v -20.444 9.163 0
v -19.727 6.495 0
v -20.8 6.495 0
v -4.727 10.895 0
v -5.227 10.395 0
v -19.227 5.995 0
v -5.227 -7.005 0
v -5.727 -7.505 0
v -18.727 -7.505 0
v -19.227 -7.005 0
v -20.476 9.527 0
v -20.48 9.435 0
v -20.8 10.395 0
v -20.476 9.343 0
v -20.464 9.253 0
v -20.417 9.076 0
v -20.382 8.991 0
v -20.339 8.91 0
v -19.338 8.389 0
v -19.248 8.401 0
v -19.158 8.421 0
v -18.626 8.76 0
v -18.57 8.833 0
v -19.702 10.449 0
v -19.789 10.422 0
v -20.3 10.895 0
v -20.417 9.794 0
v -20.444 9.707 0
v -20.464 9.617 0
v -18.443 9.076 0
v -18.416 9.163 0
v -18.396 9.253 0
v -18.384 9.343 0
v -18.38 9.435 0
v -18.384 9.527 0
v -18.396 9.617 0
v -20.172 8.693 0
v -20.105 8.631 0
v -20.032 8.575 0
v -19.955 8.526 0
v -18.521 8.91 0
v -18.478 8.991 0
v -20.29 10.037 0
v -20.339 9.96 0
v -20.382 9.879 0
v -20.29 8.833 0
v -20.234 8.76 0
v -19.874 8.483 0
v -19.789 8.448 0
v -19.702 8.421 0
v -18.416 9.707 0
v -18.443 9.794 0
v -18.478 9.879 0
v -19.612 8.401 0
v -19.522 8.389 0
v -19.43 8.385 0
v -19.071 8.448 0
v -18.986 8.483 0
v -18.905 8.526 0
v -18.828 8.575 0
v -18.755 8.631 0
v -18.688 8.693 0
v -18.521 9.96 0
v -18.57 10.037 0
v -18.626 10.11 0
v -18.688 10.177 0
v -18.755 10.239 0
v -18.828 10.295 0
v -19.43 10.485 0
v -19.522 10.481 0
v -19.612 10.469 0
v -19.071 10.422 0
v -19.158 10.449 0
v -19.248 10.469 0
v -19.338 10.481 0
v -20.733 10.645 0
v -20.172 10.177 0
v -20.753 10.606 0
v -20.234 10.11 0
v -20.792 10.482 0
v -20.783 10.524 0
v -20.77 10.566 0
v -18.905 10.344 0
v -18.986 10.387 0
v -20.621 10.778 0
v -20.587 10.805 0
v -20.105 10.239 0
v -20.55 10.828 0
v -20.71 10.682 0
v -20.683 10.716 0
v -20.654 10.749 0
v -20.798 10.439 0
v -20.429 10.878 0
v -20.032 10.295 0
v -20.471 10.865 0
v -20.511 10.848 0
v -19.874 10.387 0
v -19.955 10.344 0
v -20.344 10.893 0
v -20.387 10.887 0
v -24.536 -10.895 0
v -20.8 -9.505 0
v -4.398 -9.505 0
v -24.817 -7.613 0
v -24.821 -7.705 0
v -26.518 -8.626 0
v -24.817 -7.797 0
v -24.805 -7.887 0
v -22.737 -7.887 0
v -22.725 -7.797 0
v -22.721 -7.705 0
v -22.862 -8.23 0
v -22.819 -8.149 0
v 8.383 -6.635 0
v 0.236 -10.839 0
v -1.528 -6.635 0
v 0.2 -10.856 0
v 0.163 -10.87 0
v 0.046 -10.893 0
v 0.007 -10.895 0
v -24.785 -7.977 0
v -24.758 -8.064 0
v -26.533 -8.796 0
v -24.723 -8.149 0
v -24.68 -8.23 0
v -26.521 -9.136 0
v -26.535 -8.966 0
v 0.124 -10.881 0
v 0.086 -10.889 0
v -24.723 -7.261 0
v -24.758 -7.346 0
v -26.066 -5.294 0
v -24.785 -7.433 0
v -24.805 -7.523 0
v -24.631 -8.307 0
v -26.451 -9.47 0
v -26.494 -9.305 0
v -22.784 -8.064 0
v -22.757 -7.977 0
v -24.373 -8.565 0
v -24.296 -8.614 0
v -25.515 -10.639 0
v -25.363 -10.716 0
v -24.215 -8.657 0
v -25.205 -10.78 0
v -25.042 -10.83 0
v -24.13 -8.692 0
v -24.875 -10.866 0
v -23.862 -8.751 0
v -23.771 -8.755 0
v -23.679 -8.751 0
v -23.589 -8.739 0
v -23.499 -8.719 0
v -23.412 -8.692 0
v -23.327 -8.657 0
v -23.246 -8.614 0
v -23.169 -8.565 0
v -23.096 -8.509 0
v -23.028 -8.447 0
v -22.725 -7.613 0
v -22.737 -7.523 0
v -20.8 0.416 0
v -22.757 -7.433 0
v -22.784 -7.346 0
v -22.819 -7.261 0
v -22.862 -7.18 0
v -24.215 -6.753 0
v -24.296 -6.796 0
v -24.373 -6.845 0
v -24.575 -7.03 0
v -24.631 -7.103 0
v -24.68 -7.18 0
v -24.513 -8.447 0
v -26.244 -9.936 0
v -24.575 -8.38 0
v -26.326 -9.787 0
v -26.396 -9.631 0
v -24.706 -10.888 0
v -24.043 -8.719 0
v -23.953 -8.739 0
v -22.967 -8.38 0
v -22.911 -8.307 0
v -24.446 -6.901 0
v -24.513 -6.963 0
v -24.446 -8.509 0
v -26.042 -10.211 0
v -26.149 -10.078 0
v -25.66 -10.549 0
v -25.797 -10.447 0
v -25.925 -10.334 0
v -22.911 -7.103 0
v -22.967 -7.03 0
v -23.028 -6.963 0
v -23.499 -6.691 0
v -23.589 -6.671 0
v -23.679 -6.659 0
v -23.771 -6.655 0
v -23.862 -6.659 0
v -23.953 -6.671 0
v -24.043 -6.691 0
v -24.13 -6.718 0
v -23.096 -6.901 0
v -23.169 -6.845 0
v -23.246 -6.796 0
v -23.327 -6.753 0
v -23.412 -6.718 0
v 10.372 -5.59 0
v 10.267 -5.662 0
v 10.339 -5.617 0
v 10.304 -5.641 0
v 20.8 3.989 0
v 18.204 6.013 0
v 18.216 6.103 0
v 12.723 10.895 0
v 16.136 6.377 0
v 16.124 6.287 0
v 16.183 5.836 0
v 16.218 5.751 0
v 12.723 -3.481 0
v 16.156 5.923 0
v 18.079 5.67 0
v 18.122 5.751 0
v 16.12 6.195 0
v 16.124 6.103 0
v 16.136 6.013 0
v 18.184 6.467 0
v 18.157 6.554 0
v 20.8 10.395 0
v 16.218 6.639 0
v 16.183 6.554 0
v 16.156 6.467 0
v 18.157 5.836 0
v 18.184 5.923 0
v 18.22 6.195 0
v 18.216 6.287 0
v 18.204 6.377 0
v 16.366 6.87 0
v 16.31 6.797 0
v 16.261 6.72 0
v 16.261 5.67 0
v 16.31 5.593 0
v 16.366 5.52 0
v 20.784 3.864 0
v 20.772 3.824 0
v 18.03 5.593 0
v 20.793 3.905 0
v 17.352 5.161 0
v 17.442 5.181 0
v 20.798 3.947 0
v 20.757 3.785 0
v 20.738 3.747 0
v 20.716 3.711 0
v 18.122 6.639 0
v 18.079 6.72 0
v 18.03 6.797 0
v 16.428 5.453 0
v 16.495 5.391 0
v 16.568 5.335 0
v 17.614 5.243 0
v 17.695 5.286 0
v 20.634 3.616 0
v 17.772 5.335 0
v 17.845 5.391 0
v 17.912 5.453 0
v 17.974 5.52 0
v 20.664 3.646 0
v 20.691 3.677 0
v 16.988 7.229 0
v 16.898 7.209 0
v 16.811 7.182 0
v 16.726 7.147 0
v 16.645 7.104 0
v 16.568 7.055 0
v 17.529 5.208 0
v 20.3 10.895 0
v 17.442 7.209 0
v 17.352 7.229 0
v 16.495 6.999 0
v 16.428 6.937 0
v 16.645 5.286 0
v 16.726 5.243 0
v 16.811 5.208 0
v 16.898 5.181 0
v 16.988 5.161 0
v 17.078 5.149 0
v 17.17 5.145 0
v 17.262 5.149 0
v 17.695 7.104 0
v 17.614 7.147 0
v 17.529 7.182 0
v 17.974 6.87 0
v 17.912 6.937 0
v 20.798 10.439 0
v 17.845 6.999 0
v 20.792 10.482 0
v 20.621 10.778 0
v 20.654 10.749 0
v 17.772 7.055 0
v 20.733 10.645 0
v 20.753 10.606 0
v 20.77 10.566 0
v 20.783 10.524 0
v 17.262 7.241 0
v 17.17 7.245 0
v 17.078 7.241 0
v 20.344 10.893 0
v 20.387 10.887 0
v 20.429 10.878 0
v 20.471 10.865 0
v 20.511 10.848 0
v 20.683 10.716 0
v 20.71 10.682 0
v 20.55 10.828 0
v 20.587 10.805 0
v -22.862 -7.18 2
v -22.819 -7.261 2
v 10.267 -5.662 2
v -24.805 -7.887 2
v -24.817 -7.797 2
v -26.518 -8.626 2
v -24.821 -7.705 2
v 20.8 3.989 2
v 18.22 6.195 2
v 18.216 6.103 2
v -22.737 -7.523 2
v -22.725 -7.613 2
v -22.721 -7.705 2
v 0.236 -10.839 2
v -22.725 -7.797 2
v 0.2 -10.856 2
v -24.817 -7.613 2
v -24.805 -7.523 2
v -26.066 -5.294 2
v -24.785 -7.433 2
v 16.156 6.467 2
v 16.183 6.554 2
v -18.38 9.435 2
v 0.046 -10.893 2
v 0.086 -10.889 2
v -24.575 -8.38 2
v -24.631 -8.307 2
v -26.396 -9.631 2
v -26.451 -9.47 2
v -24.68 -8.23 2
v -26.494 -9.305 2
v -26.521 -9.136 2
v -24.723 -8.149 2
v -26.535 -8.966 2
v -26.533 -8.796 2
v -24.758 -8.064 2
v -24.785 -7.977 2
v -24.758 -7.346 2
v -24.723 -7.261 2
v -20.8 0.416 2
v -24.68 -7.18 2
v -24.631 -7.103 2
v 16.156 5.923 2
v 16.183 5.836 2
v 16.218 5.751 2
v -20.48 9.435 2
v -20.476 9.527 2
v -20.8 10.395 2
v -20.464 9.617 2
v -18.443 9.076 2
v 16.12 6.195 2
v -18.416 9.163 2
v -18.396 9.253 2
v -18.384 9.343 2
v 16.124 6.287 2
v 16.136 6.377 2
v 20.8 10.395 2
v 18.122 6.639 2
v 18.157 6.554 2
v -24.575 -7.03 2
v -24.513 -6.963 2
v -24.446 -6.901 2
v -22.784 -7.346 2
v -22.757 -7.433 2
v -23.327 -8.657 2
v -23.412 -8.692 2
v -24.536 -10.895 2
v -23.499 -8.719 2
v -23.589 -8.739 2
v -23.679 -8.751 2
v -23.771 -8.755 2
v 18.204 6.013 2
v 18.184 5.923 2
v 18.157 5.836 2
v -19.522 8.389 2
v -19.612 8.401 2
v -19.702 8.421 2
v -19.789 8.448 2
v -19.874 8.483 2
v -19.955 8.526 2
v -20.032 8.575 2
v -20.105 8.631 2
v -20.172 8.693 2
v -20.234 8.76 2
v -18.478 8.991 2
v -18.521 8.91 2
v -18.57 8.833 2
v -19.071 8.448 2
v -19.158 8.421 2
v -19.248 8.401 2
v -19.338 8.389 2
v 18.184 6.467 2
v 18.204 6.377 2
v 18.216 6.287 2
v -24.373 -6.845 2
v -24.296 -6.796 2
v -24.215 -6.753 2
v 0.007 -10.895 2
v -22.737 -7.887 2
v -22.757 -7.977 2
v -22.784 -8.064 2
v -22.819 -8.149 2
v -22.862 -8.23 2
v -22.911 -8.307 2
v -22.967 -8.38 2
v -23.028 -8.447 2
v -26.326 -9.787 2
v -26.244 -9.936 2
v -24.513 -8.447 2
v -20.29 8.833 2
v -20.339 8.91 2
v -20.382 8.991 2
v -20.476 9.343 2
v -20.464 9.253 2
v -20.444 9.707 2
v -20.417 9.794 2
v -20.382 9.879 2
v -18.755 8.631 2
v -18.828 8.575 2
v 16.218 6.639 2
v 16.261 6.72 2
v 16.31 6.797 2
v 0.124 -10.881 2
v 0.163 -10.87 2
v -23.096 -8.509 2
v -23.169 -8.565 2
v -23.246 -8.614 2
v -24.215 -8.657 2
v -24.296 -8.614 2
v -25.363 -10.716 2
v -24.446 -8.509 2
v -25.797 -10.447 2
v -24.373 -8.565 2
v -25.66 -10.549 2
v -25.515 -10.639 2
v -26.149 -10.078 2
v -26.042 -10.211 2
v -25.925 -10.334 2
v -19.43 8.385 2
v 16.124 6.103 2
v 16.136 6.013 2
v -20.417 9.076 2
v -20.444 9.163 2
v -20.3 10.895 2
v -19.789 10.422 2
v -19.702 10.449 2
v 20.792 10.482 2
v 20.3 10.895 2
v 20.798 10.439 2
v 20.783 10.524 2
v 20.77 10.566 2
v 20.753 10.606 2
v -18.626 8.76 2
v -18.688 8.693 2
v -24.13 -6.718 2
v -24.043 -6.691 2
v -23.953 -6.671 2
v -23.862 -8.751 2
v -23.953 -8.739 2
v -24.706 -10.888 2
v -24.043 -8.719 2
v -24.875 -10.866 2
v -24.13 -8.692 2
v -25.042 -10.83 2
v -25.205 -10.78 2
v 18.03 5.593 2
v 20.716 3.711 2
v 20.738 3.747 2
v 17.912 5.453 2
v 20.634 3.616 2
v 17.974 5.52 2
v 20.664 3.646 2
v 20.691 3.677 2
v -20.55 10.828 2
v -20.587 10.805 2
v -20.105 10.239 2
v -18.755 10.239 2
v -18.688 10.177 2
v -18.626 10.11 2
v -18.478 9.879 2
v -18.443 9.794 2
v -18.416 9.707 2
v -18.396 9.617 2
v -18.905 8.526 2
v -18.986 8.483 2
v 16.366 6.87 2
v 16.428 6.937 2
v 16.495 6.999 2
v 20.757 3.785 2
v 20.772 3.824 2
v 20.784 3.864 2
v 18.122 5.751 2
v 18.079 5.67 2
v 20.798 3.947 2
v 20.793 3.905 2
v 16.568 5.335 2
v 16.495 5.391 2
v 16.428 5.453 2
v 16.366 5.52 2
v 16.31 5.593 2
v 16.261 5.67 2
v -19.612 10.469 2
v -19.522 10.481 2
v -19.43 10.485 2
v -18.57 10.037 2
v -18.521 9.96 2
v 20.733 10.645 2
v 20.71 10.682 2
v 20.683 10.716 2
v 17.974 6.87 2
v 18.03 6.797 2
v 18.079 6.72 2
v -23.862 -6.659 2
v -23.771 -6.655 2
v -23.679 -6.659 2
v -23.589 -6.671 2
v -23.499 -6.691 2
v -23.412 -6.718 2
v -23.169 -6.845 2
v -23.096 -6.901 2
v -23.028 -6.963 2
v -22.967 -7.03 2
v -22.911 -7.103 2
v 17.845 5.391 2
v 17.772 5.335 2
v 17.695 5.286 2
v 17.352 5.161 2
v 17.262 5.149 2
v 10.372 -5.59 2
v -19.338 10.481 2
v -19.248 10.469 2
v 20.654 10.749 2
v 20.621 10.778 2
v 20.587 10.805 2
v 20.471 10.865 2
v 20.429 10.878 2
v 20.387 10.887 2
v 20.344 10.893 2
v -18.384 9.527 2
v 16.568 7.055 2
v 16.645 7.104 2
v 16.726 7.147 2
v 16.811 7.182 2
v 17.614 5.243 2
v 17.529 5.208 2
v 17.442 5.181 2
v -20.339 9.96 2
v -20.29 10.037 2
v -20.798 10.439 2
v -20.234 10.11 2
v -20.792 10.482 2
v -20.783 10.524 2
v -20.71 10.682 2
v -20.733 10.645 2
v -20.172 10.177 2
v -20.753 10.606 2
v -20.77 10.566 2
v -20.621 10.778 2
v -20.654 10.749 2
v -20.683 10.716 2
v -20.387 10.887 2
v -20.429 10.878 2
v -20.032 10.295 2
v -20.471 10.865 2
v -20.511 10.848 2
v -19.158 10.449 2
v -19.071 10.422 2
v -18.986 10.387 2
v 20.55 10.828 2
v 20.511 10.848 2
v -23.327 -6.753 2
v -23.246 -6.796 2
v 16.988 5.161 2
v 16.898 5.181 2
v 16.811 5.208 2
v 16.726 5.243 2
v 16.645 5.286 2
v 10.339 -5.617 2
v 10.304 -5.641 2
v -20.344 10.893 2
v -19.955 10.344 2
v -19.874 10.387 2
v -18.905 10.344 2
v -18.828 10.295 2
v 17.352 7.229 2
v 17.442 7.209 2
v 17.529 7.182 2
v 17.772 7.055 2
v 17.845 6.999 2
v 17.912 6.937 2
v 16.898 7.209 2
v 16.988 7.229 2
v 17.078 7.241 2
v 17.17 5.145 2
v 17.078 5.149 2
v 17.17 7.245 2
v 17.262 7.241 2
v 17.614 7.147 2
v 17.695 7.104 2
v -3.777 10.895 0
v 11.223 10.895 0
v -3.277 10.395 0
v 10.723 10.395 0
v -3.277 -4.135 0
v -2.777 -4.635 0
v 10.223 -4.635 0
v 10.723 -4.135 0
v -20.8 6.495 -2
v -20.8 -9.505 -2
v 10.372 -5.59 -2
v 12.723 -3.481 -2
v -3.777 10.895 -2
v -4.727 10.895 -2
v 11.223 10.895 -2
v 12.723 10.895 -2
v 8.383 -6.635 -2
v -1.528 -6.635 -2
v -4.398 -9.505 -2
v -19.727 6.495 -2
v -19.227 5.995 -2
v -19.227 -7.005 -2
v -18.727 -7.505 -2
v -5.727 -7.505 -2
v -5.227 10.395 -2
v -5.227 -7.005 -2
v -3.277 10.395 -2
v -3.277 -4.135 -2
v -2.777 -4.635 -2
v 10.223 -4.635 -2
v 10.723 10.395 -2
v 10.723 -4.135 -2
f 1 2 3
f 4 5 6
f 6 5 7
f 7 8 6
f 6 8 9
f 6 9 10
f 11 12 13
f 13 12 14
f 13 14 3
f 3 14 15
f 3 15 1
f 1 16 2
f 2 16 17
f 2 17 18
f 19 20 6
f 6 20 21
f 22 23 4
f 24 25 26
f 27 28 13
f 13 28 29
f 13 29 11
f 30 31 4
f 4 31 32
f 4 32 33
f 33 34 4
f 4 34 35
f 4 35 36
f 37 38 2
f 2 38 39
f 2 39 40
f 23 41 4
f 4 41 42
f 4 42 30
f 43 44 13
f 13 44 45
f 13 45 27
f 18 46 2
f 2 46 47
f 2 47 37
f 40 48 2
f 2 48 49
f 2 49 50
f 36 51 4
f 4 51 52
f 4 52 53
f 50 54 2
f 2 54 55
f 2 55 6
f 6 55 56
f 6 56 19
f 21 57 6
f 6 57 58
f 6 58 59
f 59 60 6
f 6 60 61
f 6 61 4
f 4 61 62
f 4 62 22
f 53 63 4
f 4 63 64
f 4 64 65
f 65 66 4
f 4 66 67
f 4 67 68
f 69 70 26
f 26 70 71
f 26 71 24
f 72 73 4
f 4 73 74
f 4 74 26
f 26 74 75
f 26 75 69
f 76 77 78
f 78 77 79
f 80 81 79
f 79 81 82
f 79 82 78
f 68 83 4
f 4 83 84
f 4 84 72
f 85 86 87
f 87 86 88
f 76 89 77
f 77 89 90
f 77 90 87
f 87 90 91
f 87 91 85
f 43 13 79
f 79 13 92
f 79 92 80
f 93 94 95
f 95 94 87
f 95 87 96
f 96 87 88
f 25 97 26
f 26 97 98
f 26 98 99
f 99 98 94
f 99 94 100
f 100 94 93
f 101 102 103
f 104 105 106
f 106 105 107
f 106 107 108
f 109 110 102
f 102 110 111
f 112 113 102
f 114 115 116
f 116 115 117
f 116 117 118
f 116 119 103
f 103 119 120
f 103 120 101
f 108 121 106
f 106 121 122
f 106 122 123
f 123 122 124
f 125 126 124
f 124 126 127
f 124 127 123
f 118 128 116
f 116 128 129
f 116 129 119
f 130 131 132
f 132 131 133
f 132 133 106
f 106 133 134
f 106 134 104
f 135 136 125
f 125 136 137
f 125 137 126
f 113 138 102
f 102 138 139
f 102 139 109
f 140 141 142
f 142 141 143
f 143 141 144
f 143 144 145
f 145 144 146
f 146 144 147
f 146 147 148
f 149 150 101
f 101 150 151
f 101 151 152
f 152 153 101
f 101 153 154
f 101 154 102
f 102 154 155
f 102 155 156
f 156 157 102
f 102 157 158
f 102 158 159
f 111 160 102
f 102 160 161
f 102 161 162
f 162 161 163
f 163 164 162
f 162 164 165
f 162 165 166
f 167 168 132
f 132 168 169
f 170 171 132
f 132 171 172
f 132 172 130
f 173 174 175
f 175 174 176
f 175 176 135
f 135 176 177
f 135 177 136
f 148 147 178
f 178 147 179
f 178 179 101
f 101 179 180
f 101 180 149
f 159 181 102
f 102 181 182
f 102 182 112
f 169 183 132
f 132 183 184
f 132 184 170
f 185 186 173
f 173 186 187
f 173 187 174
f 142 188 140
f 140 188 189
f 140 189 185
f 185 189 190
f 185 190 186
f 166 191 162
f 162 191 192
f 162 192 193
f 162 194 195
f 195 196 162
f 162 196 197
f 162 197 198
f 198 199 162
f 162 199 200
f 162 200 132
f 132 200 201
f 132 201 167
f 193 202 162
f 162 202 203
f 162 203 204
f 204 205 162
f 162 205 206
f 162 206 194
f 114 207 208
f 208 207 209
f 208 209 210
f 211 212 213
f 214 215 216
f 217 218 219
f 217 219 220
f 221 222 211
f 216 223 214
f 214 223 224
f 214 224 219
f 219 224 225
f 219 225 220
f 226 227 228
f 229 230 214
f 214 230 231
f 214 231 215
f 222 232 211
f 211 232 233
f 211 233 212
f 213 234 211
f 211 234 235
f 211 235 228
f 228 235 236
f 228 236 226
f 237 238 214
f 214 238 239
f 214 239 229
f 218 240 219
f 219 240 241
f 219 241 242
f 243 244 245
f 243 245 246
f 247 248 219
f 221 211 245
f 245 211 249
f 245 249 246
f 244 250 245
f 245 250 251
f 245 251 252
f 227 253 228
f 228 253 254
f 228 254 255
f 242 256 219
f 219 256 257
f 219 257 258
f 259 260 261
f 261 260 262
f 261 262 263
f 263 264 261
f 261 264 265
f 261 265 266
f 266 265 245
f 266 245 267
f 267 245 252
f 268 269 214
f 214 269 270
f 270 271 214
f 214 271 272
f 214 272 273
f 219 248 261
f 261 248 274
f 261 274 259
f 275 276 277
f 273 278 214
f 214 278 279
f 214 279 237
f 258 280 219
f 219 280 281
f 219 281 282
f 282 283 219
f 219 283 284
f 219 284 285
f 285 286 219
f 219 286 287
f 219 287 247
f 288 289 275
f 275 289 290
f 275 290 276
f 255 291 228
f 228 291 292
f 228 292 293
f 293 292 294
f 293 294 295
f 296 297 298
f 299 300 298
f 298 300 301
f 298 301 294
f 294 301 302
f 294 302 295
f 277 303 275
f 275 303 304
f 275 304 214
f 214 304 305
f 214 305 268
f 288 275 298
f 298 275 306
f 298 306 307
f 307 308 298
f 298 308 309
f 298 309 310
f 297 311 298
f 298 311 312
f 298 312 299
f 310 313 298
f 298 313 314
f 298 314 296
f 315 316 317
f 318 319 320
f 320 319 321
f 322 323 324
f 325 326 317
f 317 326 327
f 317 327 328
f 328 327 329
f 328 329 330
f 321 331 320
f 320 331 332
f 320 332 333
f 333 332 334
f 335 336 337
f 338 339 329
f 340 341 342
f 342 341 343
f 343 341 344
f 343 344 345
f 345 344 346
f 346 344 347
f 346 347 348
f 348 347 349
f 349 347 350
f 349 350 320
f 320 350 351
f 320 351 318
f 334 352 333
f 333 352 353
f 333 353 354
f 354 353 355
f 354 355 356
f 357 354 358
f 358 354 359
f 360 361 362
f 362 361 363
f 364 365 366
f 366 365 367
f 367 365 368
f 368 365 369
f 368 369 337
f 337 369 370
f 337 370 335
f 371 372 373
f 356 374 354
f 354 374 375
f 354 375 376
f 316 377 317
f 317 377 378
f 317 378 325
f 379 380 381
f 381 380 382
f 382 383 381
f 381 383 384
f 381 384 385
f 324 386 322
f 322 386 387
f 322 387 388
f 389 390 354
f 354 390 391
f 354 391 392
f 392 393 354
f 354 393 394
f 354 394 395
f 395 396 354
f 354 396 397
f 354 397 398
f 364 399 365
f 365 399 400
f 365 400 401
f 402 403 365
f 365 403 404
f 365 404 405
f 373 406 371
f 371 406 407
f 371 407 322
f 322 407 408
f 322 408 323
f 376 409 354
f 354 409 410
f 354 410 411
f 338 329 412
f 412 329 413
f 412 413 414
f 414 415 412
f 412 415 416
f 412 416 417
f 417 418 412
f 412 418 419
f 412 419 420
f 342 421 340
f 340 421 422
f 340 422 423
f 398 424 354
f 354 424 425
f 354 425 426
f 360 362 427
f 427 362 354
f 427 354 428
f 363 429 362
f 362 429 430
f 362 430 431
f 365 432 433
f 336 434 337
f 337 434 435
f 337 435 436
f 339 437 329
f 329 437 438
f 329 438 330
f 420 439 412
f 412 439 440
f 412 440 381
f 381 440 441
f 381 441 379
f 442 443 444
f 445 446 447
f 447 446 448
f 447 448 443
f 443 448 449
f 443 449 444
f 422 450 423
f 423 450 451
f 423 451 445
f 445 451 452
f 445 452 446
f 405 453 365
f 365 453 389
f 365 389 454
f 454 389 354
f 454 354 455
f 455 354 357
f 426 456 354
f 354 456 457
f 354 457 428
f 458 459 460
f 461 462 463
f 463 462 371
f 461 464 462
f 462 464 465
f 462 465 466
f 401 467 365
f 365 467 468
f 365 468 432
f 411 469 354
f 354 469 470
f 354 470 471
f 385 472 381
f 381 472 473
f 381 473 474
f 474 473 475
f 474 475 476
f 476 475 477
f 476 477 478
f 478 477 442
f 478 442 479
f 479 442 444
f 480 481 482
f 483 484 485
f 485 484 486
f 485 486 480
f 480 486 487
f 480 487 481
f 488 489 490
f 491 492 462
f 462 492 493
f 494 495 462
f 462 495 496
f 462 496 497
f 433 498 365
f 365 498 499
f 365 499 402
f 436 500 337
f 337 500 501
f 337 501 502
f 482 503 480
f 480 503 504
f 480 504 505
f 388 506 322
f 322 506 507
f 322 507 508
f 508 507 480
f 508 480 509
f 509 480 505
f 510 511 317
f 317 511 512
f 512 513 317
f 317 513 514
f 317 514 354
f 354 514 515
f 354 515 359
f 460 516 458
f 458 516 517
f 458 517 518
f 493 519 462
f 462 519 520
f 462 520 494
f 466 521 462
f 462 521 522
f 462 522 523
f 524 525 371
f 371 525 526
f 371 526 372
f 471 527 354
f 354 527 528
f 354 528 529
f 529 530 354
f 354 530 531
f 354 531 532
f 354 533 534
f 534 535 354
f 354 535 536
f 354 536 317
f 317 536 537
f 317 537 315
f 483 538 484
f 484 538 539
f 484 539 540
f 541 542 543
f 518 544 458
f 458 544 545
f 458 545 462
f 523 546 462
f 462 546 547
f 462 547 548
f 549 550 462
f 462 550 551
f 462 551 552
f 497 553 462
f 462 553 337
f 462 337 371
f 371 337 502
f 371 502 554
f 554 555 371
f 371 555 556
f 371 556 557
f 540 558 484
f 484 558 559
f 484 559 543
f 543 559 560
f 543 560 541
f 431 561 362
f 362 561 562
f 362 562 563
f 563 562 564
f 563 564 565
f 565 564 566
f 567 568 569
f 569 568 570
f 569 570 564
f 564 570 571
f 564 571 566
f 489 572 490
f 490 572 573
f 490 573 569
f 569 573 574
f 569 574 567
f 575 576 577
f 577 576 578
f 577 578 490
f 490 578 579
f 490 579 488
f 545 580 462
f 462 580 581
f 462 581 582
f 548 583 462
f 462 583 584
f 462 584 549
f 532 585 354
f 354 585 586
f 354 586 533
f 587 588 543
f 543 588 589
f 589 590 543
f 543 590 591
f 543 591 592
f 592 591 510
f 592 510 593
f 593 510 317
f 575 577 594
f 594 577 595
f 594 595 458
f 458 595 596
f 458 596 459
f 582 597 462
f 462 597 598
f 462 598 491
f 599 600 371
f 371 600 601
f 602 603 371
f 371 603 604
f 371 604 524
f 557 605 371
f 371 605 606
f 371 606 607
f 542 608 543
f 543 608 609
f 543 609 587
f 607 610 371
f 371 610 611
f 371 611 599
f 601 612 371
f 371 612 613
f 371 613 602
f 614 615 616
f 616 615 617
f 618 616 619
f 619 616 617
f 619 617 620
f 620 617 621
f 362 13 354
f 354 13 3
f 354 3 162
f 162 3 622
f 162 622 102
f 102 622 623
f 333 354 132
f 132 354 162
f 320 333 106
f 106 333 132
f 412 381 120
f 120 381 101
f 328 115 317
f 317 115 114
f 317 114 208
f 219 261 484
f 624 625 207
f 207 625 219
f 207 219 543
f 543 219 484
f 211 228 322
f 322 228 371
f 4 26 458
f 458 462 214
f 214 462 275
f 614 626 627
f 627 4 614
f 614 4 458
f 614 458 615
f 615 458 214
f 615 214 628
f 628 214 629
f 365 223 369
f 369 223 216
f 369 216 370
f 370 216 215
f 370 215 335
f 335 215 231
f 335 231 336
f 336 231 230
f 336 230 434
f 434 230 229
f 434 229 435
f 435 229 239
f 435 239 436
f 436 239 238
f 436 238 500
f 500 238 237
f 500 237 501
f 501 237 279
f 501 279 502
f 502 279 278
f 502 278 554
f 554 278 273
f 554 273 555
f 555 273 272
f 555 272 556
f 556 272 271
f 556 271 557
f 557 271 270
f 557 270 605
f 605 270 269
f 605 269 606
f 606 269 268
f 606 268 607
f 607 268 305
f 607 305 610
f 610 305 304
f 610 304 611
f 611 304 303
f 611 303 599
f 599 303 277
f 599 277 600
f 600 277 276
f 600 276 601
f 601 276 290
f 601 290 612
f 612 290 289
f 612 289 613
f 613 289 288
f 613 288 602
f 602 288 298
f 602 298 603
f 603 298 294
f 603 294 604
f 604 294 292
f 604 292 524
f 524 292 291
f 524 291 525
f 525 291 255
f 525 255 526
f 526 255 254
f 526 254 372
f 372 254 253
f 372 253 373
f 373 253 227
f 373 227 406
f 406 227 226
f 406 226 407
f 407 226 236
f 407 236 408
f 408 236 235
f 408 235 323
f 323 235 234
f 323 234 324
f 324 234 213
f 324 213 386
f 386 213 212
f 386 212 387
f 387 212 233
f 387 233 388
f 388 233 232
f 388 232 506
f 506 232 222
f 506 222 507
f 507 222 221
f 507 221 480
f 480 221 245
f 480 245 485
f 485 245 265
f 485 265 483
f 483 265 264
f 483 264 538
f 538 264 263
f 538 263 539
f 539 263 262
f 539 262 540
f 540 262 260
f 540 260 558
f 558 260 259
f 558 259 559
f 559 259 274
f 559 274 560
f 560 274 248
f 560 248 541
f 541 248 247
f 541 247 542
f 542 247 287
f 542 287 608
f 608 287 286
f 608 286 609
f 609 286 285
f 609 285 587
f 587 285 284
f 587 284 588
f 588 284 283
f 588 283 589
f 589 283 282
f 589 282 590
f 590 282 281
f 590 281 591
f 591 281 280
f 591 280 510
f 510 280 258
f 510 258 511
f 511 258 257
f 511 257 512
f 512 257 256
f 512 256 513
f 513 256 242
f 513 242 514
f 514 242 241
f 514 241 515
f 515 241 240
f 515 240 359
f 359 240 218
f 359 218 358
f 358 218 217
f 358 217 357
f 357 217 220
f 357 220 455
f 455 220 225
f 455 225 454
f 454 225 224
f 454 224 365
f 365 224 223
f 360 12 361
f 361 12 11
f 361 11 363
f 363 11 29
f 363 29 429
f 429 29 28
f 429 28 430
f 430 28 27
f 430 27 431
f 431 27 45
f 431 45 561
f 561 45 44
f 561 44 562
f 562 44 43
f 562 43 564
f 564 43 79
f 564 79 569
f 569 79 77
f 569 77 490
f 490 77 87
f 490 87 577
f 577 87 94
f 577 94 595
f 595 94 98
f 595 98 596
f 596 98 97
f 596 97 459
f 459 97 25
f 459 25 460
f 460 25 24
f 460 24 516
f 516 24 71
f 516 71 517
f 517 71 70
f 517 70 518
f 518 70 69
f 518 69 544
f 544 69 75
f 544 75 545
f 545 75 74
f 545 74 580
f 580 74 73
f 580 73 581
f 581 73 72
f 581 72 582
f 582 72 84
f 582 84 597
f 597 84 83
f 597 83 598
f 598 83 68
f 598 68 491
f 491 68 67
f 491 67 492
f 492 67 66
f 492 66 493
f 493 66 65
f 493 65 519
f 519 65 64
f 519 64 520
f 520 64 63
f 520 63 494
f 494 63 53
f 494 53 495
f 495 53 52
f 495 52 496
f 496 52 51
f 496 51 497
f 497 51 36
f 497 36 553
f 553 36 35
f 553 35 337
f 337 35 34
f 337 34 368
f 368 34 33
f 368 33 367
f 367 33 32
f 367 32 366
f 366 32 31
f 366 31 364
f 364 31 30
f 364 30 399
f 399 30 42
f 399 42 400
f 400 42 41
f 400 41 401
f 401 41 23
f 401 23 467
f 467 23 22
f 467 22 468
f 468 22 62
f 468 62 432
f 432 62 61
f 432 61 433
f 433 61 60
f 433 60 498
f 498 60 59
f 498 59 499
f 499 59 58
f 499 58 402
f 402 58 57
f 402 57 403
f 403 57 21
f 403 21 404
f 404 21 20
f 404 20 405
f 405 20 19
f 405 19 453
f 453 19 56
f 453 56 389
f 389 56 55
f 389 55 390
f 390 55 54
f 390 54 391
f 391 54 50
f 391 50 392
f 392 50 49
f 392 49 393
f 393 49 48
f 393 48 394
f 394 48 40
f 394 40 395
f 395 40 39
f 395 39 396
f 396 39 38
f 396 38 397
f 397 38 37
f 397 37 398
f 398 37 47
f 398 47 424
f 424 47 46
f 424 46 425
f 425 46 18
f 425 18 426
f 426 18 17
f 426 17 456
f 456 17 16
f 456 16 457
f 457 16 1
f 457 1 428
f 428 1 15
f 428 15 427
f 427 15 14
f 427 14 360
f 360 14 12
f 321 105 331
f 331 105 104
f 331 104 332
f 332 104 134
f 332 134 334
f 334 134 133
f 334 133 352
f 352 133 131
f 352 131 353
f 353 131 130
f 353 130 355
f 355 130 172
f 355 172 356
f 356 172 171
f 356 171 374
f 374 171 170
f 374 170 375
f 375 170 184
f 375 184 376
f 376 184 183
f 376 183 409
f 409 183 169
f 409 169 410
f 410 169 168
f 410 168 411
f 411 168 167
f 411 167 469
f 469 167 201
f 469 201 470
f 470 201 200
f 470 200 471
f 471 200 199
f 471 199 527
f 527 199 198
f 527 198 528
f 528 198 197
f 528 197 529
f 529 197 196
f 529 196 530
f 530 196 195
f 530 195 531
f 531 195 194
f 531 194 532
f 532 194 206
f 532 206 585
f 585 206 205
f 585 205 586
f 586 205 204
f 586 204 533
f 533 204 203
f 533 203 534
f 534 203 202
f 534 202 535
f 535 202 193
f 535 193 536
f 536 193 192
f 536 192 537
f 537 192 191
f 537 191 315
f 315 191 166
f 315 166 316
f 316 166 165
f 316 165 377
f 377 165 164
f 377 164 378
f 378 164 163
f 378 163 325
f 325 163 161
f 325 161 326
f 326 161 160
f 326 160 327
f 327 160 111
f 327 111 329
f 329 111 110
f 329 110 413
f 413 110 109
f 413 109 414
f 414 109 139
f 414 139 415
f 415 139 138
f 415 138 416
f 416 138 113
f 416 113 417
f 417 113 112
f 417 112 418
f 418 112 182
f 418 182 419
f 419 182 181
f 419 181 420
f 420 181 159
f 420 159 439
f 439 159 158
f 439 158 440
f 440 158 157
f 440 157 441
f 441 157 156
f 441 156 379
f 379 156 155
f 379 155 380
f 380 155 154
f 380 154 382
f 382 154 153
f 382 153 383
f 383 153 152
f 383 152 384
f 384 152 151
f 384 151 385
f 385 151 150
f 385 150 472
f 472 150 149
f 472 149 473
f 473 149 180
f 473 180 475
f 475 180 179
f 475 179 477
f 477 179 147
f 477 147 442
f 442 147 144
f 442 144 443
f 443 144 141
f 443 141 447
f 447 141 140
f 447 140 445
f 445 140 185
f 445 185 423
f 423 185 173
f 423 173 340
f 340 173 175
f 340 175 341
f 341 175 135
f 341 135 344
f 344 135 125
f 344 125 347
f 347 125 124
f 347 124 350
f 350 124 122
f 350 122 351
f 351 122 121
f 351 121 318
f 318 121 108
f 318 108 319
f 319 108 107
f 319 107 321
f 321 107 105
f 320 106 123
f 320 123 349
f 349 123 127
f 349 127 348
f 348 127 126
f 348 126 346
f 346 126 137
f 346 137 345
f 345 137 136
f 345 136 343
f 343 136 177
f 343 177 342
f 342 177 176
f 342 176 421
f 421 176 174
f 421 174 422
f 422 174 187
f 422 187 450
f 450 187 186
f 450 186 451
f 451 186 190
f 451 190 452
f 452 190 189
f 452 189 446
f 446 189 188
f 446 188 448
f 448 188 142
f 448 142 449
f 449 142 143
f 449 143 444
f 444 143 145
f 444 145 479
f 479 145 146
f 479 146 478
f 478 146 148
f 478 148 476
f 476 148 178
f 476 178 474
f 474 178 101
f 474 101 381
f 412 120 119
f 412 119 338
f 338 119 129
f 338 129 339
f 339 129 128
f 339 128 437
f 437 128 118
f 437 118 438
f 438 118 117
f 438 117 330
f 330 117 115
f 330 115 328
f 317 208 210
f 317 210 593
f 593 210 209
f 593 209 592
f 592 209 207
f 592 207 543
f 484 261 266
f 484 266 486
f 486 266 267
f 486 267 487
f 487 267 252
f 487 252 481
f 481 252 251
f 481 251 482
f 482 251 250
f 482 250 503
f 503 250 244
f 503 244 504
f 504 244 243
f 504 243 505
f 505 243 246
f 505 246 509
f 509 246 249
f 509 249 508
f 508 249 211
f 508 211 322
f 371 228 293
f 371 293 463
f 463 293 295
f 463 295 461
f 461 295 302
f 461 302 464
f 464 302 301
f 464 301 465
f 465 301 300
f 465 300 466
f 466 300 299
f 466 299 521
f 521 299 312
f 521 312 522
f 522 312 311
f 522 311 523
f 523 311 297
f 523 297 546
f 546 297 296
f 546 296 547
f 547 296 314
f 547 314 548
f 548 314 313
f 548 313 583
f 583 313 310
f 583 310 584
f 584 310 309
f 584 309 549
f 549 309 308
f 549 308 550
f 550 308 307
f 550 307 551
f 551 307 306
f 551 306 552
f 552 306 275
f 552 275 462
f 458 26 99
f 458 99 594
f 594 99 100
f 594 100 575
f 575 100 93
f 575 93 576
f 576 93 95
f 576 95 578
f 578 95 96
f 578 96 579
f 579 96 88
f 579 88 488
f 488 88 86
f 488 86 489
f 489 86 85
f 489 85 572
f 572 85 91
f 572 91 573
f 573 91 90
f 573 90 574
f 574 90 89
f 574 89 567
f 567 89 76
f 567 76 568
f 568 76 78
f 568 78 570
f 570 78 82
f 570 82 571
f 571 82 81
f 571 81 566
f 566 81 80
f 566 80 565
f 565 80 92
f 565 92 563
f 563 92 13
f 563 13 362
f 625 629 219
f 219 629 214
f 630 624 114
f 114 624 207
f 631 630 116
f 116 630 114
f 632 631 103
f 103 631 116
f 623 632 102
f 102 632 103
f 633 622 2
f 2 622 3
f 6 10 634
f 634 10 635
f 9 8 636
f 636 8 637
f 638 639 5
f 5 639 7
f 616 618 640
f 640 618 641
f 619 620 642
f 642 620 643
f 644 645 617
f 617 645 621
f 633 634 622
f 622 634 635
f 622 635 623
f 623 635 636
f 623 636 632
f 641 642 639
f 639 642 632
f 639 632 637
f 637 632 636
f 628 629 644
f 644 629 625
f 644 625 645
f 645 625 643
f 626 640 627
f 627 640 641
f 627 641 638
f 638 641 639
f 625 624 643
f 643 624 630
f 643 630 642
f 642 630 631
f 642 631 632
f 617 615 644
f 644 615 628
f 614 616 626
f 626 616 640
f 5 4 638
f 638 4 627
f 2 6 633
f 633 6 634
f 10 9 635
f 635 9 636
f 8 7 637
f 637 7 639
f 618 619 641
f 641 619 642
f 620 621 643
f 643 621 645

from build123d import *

# Parameters (mm, degrees)
ESQUISSE1_R        = 1.05
BOSS_EXTRU_1_DEPTH = 2
CONG_1_R           = 2
CONG_2_R           = 0.5
BOSS_EXTRU_2_DEPTH = 2
CHANFREIN1_SIZE    = 0.5


with BuildPart() as part:
    # Esquisse1 → Boss.-Extru.1 (new body)
    with BuildSketch(Plane.XY):
        Polygon((-20.8, 10.895), (20.8, 10.895), (20.8, 3.765359203), (10.324093605, -5.633066028), (0.127924824, -10.895), (-20.8, -10.895), (-26.825567122, -10.895), (-26.065636187, -5.293625083), (-20.8, 0.415783742), align=None)
        with Locations((17.17, 6.195)):
            Circle(ESQUISSE1_R, mode=Mode.SUBTRACT)
        with Locations((-19.43, 9.435)):
            Circle(ESQUISSE1_R, mode=Mode.SUBTRACT)
        with Locations((-23.770918846, -7.705)):
            Circle(ESQUISSE1_R, mode=Mode.SUBTRACT)
    extrude(amount=BOSS_EXTRU_1_DEPTH)

    # Congé1
    cong_1_edges = [part.edges().sort_by_distance(p)[0] for p in [
        (-26.825567122, -10.895, 1),
    ]]
    fillet(cong_1_edges, radius=CONG_1_R)

    # Congé2
    cong_2_edges = [part.edges().sort_by_distance(p)[0] for p in [
        (-20.8, 10.895, 1),
        (20.8, 10.895, 1),
        (20.8, 3.765359203, 1),
        (10.324093605, -5.633066028, 1),
        (0.127924824, -10.895, 1),
    ]]
    fillet(cong_2_edges, radius=CONG_2_R)

    # Esquisse2 → Boss.-Extru.2 (add)
    with BuildSketch(Plane(origin=(0, 0, 0), x_dir=(-1, 0, 0), z_dir=(0, 0, -1))):
        Polygon((-10.723313352, 9.373462564), (-10.723313352, -4.635), (3.276686648, -4.635), (3.276686648, 9.365), (3.276686648, 10.895), (5.226686648, 10.895), (5.226686648, 6.495), (5.226686648, -7.505), (19.226686648, -7.505), (19.226686648, 6.495), (20.8, 6.495), (20.8, -9.505), (4.398259523, -9.505), (1.528259523, -6.635), (-8.382623427, -6.635), (-10.371769863, -5.590293429), (-12.723313352, -3.480613862), (-12.723313352, 10.895), (-10.723313352, 10.895), align=None)
    extrude(amount=BOSS_EXTRU_2_DEPTH)

    # Chanfrein1
    chanfrein1_edges = [part.edges().sort_by_distance(p)[0] for p in [
        (10.723313352, 10.895, -1),
        (-19.226686648, 6.495, -1),
        (-19.226686648, -7.505, -1),
        (-5.226686648, -7.505, -1),
        (-5.226686648, 10.895, -1),
        (-3.276686648, 10.895, -1),
        (-3.276686648, -4.635, -1),
        (10.723313352, -4.635, -1),
    ]]
    chamfer(chanfrein1_edges, length=CHANFREIN1_SIZE)


solid = part.part
